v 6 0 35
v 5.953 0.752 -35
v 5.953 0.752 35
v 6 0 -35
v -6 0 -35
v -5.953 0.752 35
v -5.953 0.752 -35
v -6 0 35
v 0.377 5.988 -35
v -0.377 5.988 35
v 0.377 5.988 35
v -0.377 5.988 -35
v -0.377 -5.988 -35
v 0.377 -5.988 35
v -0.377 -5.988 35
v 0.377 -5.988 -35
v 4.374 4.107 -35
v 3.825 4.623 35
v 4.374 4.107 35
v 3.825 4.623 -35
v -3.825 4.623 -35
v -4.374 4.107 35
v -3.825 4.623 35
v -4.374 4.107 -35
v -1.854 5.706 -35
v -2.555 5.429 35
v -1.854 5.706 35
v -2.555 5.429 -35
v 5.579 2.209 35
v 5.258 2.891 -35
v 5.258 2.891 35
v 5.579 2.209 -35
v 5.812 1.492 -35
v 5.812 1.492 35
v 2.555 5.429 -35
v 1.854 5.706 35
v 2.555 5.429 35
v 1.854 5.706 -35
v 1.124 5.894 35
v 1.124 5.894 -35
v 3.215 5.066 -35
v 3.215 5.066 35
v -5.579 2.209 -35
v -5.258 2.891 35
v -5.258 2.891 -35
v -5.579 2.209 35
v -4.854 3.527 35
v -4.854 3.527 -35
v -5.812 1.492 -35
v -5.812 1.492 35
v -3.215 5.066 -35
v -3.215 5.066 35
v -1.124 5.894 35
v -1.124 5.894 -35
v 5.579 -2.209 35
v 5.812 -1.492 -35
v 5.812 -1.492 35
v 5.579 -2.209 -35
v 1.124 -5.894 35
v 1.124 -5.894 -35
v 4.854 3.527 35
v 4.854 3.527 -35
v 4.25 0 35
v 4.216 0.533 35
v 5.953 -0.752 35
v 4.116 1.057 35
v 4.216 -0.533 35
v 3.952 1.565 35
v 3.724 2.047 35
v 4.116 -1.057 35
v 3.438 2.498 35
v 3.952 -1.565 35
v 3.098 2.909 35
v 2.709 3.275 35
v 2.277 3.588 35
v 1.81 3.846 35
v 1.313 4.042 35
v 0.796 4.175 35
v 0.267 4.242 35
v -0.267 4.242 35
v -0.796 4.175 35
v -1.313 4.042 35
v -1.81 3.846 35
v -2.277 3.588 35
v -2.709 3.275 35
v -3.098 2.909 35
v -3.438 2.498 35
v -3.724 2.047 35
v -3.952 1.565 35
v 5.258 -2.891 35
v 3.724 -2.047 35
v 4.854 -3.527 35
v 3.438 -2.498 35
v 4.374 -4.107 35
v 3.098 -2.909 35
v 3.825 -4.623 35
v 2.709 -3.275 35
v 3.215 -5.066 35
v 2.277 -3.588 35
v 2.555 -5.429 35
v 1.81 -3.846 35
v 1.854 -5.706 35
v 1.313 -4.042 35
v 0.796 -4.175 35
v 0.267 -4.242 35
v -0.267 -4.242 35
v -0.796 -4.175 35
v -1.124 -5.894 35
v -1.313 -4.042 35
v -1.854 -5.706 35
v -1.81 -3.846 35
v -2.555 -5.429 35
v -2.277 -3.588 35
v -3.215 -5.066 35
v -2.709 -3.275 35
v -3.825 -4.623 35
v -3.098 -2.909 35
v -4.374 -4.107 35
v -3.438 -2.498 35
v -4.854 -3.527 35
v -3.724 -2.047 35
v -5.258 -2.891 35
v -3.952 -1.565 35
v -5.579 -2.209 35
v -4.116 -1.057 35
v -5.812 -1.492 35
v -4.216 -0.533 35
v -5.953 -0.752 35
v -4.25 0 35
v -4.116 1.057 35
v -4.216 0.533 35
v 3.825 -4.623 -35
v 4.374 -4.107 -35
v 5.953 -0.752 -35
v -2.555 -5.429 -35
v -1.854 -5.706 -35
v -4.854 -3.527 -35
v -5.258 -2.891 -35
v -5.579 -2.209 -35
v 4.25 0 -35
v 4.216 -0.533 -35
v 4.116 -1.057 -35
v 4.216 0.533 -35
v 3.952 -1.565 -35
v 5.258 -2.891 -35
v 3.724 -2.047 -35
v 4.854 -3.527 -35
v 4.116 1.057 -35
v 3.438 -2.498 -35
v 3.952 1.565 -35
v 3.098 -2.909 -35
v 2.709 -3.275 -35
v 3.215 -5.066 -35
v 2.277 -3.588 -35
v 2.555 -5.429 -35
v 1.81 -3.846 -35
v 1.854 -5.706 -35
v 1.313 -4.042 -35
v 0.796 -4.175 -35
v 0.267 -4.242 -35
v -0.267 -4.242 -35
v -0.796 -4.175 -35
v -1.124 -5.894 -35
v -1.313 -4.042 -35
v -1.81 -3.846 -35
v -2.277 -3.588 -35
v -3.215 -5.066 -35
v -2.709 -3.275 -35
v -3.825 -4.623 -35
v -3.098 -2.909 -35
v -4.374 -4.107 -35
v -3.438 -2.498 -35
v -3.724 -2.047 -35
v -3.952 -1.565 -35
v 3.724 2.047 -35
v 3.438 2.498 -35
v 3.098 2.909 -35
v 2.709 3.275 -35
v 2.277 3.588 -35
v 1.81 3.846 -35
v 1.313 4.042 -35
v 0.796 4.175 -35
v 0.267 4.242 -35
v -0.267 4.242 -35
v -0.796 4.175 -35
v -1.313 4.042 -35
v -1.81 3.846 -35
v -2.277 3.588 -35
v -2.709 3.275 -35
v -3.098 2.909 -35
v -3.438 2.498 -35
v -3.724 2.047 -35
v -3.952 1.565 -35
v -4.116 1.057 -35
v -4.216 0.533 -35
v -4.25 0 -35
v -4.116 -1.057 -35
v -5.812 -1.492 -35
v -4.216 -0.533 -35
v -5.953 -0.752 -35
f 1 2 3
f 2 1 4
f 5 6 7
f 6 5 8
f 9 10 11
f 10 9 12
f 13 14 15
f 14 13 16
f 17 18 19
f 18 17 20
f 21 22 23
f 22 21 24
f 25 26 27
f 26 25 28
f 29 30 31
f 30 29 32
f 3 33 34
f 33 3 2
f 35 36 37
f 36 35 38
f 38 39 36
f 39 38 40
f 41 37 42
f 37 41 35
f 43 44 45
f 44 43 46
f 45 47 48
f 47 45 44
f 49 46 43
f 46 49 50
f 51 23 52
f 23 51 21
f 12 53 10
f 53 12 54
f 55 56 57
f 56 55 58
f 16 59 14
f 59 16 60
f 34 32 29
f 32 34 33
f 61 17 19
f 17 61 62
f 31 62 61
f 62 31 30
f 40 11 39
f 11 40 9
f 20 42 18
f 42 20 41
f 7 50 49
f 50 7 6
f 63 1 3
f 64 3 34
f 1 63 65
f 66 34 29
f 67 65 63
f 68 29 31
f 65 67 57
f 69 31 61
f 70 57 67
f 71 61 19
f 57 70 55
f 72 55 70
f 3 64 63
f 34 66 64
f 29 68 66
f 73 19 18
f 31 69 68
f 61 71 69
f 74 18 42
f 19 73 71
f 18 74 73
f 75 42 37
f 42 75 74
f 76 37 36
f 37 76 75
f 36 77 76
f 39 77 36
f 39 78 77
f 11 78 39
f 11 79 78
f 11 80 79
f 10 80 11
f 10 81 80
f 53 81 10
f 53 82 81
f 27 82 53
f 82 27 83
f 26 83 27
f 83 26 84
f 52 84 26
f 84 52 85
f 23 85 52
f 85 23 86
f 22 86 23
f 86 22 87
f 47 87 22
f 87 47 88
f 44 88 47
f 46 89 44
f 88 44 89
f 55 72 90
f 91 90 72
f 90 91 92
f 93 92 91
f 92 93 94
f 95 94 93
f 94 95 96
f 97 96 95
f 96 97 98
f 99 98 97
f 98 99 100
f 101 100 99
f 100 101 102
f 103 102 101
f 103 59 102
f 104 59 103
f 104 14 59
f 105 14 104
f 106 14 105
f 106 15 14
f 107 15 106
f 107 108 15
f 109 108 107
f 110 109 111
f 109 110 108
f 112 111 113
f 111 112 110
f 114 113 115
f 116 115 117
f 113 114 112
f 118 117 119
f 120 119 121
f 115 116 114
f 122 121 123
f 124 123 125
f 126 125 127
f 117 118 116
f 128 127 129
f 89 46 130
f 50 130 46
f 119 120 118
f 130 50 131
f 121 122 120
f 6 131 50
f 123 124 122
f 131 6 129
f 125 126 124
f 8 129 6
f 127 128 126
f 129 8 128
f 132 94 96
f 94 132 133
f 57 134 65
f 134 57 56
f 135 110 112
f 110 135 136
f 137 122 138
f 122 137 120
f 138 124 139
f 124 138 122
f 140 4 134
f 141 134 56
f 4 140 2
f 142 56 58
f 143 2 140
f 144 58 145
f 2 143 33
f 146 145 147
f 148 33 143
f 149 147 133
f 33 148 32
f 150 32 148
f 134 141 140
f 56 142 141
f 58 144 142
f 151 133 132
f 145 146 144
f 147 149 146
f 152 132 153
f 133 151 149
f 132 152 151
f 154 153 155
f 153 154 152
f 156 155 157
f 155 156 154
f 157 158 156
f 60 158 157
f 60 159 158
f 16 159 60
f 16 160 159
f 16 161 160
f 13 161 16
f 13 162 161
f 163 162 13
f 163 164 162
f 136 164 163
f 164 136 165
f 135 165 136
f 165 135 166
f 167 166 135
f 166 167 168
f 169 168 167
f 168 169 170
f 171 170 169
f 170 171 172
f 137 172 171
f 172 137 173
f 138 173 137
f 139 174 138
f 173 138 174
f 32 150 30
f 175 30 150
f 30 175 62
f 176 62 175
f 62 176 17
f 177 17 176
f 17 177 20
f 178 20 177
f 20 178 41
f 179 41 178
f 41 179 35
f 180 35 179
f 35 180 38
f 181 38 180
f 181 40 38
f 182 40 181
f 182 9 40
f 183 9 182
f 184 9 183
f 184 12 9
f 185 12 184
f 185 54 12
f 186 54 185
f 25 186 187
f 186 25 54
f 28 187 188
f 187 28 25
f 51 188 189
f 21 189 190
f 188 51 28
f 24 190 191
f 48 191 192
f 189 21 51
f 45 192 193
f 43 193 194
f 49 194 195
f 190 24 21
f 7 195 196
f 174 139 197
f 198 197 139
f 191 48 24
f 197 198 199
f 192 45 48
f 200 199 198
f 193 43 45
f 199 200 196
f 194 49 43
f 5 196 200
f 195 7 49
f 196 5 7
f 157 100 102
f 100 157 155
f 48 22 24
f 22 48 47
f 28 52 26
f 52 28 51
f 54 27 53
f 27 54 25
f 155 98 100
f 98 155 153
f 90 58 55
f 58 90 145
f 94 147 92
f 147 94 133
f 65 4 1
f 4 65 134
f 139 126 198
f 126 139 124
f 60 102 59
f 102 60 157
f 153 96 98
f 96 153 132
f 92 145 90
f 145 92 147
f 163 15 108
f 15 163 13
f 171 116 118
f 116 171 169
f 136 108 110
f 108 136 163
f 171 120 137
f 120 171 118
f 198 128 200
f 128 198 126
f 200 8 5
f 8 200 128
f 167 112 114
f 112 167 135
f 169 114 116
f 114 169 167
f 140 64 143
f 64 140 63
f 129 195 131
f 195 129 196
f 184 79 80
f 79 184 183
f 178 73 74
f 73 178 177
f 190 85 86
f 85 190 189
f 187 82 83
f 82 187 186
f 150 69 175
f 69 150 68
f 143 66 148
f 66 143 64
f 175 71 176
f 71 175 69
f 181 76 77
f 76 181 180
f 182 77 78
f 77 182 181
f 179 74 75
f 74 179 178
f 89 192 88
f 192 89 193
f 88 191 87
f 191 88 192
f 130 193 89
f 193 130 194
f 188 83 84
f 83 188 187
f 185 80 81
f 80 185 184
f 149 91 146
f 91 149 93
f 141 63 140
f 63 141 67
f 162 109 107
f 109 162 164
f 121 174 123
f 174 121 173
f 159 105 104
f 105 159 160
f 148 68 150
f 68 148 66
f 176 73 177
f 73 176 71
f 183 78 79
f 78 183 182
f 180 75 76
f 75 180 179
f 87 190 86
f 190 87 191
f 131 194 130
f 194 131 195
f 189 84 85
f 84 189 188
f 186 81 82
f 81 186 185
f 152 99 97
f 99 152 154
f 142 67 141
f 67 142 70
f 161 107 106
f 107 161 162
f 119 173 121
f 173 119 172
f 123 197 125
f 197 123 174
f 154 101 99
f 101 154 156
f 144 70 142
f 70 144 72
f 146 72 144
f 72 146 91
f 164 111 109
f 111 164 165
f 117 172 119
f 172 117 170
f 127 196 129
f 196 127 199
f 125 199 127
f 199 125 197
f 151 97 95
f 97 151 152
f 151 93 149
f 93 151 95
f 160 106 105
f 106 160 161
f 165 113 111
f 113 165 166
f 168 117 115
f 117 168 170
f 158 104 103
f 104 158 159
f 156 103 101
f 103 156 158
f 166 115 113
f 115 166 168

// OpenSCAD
$fn = 50;


difference() {
	union() {
		translate(v = [0, 0, -35.0000000000]) {
			cylinder(h = 70, r = 6.0000000000);
		}
	}
	union() {
		translate(v = [0, 0, -100.0000000000]) {
			cylinder(h = 200, r = 4.2500000000);
		}
	}
}
